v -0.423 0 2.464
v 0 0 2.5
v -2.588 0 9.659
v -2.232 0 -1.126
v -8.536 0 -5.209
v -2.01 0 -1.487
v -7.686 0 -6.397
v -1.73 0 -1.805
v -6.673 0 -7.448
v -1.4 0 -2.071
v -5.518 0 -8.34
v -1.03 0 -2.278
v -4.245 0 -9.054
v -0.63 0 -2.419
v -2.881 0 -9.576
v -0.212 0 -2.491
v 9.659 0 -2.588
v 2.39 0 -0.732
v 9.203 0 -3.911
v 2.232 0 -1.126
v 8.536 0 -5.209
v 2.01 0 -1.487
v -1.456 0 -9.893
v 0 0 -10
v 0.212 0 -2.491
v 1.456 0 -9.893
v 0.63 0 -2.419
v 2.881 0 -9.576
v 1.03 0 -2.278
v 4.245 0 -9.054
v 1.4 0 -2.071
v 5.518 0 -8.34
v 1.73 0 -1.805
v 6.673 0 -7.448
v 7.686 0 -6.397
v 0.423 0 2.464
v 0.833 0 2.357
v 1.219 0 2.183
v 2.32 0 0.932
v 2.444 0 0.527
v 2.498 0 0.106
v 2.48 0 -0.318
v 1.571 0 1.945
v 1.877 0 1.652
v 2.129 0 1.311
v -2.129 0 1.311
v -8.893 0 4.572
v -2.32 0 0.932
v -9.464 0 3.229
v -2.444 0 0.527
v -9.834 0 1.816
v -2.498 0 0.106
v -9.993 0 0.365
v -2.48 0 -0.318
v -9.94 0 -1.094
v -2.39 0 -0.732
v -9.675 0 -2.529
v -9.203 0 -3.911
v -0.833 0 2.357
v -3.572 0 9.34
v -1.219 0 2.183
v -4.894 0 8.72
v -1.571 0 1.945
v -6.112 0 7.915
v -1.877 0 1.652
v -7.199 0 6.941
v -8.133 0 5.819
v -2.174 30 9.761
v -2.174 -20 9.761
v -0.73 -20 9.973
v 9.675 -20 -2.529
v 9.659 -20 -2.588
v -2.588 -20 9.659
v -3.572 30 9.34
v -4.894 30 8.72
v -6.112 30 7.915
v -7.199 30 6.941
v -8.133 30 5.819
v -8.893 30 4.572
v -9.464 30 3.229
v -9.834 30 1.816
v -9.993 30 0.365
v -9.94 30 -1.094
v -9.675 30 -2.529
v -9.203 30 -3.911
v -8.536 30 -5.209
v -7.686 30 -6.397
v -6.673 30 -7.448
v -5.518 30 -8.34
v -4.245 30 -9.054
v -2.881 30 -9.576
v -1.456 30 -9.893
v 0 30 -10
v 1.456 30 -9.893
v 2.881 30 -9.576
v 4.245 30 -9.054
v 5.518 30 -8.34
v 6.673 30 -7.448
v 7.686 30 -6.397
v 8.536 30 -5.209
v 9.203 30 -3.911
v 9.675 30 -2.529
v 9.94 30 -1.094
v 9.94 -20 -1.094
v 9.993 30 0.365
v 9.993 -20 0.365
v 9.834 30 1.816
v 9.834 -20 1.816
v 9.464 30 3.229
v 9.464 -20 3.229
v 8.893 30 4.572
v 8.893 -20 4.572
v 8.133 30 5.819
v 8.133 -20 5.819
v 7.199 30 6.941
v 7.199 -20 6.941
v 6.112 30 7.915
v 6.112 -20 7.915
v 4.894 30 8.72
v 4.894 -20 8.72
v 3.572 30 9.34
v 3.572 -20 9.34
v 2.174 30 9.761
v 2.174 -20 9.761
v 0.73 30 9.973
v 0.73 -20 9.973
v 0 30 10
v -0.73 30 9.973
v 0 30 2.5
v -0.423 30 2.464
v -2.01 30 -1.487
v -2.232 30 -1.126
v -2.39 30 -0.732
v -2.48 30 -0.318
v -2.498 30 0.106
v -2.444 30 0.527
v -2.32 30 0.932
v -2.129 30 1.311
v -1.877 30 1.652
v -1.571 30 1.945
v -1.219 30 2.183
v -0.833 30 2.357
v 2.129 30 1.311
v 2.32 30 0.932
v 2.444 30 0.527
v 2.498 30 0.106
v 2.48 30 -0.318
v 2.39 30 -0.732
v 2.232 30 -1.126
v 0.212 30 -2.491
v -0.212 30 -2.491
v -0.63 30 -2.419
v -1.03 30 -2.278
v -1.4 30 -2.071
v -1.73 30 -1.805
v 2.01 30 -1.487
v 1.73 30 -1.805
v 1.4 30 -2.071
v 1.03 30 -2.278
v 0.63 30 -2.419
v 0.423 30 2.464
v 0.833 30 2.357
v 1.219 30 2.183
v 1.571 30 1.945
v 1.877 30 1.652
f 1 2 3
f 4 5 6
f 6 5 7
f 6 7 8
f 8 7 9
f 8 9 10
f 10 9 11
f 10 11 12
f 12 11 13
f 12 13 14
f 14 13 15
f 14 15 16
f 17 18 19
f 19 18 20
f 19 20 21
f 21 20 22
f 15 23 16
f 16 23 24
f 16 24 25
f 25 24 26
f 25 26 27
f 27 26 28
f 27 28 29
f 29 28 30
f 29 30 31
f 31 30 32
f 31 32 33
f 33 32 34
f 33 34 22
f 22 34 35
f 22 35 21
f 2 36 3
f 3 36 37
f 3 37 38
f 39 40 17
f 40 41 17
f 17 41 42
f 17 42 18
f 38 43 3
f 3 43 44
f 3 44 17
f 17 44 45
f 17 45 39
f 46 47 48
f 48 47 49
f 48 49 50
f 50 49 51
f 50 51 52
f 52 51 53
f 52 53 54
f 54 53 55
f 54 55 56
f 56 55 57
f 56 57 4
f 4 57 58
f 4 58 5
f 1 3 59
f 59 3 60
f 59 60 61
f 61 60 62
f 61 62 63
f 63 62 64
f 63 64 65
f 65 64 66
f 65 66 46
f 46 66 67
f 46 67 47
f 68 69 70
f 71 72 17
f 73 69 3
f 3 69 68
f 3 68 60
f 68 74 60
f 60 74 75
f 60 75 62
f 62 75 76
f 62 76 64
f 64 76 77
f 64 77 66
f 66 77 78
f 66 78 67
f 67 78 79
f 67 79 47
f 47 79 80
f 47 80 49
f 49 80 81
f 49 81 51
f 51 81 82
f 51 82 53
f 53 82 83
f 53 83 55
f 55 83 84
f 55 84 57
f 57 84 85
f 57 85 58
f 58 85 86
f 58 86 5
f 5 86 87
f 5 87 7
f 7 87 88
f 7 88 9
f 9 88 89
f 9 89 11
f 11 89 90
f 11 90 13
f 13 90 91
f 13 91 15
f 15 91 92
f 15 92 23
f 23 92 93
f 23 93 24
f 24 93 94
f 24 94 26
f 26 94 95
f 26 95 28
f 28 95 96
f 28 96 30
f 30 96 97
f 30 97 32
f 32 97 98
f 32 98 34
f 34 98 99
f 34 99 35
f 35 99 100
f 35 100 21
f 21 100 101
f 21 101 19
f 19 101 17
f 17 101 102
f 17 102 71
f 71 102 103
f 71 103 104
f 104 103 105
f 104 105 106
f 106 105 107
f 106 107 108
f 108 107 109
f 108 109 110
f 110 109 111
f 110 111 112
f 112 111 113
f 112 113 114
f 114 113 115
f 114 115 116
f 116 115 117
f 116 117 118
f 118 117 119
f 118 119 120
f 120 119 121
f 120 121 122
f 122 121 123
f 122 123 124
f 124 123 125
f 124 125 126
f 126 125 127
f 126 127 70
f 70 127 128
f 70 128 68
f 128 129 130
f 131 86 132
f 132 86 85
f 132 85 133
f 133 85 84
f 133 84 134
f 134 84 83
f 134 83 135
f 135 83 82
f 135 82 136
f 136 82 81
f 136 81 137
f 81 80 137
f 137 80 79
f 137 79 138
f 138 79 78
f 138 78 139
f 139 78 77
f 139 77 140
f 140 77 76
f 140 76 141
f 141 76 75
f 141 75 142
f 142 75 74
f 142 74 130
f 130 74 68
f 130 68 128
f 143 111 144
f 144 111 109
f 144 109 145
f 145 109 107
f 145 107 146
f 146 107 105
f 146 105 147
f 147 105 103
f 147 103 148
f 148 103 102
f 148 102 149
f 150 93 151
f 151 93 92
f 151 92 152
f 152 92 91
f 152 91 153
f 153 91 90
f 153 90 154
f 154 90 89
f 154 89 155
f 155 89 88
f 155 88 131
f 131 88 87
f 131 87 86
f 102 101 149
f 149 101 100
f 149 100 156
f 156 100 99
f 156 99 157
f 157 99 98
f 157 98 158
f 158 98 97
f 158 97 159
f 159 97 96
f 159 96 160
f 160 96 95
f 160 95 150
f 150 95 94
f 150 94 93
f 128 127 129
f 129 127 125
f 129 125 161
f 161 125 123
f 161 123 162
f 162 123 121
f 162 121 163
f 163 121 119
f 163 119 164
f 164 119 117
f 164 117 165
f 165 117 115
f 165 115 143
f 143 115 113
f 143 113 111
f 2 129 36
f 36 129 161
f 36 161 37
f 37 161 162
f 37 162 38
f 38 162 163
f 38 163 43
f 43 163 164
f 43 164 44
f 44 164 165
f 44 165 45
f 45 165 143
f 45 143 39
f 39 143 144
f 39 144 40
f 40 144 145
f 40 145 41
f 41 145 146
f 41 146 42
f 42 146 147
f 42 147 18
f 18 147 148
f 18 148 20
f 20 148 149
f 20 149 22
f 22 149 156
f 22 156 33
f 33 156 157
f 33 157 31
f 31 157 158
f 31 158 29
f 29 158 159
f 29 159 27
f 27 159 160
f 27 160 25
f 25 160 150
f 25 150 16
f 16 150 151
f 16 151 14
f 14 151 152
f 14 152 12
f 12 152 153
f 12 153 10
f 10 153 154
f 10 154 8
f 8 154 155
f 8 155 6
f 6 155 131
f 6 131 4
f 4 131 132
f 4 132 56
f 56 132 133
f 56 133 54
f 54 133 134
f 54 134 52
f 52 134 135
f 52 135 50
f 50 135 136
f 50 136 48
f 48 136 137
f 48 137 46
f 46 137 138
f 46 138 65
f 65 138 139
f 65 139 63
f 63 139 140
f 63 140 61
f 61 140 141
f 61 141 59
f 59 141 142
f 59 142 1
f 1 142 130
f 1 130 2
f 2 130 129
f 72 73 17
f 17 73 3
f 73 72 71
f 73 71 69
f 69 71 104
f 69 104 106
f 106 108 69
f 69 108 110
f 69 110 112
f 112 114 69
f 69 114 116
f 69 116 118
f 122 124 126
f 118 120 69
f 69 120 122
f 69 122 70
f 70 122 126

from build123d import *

# Parameters (mm, degrees)
SKETCH1_R               = 10
BOSS_EXTRUDE1_DEPTH     = 30
F_5_0MM_DOWEL_HOLE1_D   = 5
SALIENTE_EXTRUIR1_START = 20
SALIENTE_EXTRUIR1_DEPTH = 20


with BuildPart() as part:
    # Sketch1 → Boss-Extrude1 (new body)
    with BuildSketch(Plane(origin=(0, 0, 0), x_dir=(1, 0, 0), z_dir=(0, 1, 0))):
        with Locations(Location((0, 0, 0), (0, 0, 270))):
            Circle(SKETCH1_R)
    extrude(amount=BOSS_EXTRUDE1_DEPTH)

    # Ø5.0mm Dowel Hole1 (through all)
    with Locations(Plane(origin=(0, 30, 0), x_dir=(1, 0, 0), z_dir=(0, 1, 0))):
        with Locations((0, 0)):
            Hole(F_5_0MM_DOWEL_HOLE1_D / 2)

    # Croquis1 → Saliente-Extruir1 (add)
    with BuildSketch(Plane.XZ.offset(SALIENTE_EXTRUIR1_START)):
        with BuildLine():
            Line((9.659258263, -2.588190451), (-2.588190451, 9.659258263))
            ThreePointArc((-2.588190451, 9.659258263), (7.071067812, 7.071067812), (9.659258263, -2.588190451))
        make_face()
    extrude(amount=-SALIENTE_EXTRUIR1_DEPTH)


solid = part.part
